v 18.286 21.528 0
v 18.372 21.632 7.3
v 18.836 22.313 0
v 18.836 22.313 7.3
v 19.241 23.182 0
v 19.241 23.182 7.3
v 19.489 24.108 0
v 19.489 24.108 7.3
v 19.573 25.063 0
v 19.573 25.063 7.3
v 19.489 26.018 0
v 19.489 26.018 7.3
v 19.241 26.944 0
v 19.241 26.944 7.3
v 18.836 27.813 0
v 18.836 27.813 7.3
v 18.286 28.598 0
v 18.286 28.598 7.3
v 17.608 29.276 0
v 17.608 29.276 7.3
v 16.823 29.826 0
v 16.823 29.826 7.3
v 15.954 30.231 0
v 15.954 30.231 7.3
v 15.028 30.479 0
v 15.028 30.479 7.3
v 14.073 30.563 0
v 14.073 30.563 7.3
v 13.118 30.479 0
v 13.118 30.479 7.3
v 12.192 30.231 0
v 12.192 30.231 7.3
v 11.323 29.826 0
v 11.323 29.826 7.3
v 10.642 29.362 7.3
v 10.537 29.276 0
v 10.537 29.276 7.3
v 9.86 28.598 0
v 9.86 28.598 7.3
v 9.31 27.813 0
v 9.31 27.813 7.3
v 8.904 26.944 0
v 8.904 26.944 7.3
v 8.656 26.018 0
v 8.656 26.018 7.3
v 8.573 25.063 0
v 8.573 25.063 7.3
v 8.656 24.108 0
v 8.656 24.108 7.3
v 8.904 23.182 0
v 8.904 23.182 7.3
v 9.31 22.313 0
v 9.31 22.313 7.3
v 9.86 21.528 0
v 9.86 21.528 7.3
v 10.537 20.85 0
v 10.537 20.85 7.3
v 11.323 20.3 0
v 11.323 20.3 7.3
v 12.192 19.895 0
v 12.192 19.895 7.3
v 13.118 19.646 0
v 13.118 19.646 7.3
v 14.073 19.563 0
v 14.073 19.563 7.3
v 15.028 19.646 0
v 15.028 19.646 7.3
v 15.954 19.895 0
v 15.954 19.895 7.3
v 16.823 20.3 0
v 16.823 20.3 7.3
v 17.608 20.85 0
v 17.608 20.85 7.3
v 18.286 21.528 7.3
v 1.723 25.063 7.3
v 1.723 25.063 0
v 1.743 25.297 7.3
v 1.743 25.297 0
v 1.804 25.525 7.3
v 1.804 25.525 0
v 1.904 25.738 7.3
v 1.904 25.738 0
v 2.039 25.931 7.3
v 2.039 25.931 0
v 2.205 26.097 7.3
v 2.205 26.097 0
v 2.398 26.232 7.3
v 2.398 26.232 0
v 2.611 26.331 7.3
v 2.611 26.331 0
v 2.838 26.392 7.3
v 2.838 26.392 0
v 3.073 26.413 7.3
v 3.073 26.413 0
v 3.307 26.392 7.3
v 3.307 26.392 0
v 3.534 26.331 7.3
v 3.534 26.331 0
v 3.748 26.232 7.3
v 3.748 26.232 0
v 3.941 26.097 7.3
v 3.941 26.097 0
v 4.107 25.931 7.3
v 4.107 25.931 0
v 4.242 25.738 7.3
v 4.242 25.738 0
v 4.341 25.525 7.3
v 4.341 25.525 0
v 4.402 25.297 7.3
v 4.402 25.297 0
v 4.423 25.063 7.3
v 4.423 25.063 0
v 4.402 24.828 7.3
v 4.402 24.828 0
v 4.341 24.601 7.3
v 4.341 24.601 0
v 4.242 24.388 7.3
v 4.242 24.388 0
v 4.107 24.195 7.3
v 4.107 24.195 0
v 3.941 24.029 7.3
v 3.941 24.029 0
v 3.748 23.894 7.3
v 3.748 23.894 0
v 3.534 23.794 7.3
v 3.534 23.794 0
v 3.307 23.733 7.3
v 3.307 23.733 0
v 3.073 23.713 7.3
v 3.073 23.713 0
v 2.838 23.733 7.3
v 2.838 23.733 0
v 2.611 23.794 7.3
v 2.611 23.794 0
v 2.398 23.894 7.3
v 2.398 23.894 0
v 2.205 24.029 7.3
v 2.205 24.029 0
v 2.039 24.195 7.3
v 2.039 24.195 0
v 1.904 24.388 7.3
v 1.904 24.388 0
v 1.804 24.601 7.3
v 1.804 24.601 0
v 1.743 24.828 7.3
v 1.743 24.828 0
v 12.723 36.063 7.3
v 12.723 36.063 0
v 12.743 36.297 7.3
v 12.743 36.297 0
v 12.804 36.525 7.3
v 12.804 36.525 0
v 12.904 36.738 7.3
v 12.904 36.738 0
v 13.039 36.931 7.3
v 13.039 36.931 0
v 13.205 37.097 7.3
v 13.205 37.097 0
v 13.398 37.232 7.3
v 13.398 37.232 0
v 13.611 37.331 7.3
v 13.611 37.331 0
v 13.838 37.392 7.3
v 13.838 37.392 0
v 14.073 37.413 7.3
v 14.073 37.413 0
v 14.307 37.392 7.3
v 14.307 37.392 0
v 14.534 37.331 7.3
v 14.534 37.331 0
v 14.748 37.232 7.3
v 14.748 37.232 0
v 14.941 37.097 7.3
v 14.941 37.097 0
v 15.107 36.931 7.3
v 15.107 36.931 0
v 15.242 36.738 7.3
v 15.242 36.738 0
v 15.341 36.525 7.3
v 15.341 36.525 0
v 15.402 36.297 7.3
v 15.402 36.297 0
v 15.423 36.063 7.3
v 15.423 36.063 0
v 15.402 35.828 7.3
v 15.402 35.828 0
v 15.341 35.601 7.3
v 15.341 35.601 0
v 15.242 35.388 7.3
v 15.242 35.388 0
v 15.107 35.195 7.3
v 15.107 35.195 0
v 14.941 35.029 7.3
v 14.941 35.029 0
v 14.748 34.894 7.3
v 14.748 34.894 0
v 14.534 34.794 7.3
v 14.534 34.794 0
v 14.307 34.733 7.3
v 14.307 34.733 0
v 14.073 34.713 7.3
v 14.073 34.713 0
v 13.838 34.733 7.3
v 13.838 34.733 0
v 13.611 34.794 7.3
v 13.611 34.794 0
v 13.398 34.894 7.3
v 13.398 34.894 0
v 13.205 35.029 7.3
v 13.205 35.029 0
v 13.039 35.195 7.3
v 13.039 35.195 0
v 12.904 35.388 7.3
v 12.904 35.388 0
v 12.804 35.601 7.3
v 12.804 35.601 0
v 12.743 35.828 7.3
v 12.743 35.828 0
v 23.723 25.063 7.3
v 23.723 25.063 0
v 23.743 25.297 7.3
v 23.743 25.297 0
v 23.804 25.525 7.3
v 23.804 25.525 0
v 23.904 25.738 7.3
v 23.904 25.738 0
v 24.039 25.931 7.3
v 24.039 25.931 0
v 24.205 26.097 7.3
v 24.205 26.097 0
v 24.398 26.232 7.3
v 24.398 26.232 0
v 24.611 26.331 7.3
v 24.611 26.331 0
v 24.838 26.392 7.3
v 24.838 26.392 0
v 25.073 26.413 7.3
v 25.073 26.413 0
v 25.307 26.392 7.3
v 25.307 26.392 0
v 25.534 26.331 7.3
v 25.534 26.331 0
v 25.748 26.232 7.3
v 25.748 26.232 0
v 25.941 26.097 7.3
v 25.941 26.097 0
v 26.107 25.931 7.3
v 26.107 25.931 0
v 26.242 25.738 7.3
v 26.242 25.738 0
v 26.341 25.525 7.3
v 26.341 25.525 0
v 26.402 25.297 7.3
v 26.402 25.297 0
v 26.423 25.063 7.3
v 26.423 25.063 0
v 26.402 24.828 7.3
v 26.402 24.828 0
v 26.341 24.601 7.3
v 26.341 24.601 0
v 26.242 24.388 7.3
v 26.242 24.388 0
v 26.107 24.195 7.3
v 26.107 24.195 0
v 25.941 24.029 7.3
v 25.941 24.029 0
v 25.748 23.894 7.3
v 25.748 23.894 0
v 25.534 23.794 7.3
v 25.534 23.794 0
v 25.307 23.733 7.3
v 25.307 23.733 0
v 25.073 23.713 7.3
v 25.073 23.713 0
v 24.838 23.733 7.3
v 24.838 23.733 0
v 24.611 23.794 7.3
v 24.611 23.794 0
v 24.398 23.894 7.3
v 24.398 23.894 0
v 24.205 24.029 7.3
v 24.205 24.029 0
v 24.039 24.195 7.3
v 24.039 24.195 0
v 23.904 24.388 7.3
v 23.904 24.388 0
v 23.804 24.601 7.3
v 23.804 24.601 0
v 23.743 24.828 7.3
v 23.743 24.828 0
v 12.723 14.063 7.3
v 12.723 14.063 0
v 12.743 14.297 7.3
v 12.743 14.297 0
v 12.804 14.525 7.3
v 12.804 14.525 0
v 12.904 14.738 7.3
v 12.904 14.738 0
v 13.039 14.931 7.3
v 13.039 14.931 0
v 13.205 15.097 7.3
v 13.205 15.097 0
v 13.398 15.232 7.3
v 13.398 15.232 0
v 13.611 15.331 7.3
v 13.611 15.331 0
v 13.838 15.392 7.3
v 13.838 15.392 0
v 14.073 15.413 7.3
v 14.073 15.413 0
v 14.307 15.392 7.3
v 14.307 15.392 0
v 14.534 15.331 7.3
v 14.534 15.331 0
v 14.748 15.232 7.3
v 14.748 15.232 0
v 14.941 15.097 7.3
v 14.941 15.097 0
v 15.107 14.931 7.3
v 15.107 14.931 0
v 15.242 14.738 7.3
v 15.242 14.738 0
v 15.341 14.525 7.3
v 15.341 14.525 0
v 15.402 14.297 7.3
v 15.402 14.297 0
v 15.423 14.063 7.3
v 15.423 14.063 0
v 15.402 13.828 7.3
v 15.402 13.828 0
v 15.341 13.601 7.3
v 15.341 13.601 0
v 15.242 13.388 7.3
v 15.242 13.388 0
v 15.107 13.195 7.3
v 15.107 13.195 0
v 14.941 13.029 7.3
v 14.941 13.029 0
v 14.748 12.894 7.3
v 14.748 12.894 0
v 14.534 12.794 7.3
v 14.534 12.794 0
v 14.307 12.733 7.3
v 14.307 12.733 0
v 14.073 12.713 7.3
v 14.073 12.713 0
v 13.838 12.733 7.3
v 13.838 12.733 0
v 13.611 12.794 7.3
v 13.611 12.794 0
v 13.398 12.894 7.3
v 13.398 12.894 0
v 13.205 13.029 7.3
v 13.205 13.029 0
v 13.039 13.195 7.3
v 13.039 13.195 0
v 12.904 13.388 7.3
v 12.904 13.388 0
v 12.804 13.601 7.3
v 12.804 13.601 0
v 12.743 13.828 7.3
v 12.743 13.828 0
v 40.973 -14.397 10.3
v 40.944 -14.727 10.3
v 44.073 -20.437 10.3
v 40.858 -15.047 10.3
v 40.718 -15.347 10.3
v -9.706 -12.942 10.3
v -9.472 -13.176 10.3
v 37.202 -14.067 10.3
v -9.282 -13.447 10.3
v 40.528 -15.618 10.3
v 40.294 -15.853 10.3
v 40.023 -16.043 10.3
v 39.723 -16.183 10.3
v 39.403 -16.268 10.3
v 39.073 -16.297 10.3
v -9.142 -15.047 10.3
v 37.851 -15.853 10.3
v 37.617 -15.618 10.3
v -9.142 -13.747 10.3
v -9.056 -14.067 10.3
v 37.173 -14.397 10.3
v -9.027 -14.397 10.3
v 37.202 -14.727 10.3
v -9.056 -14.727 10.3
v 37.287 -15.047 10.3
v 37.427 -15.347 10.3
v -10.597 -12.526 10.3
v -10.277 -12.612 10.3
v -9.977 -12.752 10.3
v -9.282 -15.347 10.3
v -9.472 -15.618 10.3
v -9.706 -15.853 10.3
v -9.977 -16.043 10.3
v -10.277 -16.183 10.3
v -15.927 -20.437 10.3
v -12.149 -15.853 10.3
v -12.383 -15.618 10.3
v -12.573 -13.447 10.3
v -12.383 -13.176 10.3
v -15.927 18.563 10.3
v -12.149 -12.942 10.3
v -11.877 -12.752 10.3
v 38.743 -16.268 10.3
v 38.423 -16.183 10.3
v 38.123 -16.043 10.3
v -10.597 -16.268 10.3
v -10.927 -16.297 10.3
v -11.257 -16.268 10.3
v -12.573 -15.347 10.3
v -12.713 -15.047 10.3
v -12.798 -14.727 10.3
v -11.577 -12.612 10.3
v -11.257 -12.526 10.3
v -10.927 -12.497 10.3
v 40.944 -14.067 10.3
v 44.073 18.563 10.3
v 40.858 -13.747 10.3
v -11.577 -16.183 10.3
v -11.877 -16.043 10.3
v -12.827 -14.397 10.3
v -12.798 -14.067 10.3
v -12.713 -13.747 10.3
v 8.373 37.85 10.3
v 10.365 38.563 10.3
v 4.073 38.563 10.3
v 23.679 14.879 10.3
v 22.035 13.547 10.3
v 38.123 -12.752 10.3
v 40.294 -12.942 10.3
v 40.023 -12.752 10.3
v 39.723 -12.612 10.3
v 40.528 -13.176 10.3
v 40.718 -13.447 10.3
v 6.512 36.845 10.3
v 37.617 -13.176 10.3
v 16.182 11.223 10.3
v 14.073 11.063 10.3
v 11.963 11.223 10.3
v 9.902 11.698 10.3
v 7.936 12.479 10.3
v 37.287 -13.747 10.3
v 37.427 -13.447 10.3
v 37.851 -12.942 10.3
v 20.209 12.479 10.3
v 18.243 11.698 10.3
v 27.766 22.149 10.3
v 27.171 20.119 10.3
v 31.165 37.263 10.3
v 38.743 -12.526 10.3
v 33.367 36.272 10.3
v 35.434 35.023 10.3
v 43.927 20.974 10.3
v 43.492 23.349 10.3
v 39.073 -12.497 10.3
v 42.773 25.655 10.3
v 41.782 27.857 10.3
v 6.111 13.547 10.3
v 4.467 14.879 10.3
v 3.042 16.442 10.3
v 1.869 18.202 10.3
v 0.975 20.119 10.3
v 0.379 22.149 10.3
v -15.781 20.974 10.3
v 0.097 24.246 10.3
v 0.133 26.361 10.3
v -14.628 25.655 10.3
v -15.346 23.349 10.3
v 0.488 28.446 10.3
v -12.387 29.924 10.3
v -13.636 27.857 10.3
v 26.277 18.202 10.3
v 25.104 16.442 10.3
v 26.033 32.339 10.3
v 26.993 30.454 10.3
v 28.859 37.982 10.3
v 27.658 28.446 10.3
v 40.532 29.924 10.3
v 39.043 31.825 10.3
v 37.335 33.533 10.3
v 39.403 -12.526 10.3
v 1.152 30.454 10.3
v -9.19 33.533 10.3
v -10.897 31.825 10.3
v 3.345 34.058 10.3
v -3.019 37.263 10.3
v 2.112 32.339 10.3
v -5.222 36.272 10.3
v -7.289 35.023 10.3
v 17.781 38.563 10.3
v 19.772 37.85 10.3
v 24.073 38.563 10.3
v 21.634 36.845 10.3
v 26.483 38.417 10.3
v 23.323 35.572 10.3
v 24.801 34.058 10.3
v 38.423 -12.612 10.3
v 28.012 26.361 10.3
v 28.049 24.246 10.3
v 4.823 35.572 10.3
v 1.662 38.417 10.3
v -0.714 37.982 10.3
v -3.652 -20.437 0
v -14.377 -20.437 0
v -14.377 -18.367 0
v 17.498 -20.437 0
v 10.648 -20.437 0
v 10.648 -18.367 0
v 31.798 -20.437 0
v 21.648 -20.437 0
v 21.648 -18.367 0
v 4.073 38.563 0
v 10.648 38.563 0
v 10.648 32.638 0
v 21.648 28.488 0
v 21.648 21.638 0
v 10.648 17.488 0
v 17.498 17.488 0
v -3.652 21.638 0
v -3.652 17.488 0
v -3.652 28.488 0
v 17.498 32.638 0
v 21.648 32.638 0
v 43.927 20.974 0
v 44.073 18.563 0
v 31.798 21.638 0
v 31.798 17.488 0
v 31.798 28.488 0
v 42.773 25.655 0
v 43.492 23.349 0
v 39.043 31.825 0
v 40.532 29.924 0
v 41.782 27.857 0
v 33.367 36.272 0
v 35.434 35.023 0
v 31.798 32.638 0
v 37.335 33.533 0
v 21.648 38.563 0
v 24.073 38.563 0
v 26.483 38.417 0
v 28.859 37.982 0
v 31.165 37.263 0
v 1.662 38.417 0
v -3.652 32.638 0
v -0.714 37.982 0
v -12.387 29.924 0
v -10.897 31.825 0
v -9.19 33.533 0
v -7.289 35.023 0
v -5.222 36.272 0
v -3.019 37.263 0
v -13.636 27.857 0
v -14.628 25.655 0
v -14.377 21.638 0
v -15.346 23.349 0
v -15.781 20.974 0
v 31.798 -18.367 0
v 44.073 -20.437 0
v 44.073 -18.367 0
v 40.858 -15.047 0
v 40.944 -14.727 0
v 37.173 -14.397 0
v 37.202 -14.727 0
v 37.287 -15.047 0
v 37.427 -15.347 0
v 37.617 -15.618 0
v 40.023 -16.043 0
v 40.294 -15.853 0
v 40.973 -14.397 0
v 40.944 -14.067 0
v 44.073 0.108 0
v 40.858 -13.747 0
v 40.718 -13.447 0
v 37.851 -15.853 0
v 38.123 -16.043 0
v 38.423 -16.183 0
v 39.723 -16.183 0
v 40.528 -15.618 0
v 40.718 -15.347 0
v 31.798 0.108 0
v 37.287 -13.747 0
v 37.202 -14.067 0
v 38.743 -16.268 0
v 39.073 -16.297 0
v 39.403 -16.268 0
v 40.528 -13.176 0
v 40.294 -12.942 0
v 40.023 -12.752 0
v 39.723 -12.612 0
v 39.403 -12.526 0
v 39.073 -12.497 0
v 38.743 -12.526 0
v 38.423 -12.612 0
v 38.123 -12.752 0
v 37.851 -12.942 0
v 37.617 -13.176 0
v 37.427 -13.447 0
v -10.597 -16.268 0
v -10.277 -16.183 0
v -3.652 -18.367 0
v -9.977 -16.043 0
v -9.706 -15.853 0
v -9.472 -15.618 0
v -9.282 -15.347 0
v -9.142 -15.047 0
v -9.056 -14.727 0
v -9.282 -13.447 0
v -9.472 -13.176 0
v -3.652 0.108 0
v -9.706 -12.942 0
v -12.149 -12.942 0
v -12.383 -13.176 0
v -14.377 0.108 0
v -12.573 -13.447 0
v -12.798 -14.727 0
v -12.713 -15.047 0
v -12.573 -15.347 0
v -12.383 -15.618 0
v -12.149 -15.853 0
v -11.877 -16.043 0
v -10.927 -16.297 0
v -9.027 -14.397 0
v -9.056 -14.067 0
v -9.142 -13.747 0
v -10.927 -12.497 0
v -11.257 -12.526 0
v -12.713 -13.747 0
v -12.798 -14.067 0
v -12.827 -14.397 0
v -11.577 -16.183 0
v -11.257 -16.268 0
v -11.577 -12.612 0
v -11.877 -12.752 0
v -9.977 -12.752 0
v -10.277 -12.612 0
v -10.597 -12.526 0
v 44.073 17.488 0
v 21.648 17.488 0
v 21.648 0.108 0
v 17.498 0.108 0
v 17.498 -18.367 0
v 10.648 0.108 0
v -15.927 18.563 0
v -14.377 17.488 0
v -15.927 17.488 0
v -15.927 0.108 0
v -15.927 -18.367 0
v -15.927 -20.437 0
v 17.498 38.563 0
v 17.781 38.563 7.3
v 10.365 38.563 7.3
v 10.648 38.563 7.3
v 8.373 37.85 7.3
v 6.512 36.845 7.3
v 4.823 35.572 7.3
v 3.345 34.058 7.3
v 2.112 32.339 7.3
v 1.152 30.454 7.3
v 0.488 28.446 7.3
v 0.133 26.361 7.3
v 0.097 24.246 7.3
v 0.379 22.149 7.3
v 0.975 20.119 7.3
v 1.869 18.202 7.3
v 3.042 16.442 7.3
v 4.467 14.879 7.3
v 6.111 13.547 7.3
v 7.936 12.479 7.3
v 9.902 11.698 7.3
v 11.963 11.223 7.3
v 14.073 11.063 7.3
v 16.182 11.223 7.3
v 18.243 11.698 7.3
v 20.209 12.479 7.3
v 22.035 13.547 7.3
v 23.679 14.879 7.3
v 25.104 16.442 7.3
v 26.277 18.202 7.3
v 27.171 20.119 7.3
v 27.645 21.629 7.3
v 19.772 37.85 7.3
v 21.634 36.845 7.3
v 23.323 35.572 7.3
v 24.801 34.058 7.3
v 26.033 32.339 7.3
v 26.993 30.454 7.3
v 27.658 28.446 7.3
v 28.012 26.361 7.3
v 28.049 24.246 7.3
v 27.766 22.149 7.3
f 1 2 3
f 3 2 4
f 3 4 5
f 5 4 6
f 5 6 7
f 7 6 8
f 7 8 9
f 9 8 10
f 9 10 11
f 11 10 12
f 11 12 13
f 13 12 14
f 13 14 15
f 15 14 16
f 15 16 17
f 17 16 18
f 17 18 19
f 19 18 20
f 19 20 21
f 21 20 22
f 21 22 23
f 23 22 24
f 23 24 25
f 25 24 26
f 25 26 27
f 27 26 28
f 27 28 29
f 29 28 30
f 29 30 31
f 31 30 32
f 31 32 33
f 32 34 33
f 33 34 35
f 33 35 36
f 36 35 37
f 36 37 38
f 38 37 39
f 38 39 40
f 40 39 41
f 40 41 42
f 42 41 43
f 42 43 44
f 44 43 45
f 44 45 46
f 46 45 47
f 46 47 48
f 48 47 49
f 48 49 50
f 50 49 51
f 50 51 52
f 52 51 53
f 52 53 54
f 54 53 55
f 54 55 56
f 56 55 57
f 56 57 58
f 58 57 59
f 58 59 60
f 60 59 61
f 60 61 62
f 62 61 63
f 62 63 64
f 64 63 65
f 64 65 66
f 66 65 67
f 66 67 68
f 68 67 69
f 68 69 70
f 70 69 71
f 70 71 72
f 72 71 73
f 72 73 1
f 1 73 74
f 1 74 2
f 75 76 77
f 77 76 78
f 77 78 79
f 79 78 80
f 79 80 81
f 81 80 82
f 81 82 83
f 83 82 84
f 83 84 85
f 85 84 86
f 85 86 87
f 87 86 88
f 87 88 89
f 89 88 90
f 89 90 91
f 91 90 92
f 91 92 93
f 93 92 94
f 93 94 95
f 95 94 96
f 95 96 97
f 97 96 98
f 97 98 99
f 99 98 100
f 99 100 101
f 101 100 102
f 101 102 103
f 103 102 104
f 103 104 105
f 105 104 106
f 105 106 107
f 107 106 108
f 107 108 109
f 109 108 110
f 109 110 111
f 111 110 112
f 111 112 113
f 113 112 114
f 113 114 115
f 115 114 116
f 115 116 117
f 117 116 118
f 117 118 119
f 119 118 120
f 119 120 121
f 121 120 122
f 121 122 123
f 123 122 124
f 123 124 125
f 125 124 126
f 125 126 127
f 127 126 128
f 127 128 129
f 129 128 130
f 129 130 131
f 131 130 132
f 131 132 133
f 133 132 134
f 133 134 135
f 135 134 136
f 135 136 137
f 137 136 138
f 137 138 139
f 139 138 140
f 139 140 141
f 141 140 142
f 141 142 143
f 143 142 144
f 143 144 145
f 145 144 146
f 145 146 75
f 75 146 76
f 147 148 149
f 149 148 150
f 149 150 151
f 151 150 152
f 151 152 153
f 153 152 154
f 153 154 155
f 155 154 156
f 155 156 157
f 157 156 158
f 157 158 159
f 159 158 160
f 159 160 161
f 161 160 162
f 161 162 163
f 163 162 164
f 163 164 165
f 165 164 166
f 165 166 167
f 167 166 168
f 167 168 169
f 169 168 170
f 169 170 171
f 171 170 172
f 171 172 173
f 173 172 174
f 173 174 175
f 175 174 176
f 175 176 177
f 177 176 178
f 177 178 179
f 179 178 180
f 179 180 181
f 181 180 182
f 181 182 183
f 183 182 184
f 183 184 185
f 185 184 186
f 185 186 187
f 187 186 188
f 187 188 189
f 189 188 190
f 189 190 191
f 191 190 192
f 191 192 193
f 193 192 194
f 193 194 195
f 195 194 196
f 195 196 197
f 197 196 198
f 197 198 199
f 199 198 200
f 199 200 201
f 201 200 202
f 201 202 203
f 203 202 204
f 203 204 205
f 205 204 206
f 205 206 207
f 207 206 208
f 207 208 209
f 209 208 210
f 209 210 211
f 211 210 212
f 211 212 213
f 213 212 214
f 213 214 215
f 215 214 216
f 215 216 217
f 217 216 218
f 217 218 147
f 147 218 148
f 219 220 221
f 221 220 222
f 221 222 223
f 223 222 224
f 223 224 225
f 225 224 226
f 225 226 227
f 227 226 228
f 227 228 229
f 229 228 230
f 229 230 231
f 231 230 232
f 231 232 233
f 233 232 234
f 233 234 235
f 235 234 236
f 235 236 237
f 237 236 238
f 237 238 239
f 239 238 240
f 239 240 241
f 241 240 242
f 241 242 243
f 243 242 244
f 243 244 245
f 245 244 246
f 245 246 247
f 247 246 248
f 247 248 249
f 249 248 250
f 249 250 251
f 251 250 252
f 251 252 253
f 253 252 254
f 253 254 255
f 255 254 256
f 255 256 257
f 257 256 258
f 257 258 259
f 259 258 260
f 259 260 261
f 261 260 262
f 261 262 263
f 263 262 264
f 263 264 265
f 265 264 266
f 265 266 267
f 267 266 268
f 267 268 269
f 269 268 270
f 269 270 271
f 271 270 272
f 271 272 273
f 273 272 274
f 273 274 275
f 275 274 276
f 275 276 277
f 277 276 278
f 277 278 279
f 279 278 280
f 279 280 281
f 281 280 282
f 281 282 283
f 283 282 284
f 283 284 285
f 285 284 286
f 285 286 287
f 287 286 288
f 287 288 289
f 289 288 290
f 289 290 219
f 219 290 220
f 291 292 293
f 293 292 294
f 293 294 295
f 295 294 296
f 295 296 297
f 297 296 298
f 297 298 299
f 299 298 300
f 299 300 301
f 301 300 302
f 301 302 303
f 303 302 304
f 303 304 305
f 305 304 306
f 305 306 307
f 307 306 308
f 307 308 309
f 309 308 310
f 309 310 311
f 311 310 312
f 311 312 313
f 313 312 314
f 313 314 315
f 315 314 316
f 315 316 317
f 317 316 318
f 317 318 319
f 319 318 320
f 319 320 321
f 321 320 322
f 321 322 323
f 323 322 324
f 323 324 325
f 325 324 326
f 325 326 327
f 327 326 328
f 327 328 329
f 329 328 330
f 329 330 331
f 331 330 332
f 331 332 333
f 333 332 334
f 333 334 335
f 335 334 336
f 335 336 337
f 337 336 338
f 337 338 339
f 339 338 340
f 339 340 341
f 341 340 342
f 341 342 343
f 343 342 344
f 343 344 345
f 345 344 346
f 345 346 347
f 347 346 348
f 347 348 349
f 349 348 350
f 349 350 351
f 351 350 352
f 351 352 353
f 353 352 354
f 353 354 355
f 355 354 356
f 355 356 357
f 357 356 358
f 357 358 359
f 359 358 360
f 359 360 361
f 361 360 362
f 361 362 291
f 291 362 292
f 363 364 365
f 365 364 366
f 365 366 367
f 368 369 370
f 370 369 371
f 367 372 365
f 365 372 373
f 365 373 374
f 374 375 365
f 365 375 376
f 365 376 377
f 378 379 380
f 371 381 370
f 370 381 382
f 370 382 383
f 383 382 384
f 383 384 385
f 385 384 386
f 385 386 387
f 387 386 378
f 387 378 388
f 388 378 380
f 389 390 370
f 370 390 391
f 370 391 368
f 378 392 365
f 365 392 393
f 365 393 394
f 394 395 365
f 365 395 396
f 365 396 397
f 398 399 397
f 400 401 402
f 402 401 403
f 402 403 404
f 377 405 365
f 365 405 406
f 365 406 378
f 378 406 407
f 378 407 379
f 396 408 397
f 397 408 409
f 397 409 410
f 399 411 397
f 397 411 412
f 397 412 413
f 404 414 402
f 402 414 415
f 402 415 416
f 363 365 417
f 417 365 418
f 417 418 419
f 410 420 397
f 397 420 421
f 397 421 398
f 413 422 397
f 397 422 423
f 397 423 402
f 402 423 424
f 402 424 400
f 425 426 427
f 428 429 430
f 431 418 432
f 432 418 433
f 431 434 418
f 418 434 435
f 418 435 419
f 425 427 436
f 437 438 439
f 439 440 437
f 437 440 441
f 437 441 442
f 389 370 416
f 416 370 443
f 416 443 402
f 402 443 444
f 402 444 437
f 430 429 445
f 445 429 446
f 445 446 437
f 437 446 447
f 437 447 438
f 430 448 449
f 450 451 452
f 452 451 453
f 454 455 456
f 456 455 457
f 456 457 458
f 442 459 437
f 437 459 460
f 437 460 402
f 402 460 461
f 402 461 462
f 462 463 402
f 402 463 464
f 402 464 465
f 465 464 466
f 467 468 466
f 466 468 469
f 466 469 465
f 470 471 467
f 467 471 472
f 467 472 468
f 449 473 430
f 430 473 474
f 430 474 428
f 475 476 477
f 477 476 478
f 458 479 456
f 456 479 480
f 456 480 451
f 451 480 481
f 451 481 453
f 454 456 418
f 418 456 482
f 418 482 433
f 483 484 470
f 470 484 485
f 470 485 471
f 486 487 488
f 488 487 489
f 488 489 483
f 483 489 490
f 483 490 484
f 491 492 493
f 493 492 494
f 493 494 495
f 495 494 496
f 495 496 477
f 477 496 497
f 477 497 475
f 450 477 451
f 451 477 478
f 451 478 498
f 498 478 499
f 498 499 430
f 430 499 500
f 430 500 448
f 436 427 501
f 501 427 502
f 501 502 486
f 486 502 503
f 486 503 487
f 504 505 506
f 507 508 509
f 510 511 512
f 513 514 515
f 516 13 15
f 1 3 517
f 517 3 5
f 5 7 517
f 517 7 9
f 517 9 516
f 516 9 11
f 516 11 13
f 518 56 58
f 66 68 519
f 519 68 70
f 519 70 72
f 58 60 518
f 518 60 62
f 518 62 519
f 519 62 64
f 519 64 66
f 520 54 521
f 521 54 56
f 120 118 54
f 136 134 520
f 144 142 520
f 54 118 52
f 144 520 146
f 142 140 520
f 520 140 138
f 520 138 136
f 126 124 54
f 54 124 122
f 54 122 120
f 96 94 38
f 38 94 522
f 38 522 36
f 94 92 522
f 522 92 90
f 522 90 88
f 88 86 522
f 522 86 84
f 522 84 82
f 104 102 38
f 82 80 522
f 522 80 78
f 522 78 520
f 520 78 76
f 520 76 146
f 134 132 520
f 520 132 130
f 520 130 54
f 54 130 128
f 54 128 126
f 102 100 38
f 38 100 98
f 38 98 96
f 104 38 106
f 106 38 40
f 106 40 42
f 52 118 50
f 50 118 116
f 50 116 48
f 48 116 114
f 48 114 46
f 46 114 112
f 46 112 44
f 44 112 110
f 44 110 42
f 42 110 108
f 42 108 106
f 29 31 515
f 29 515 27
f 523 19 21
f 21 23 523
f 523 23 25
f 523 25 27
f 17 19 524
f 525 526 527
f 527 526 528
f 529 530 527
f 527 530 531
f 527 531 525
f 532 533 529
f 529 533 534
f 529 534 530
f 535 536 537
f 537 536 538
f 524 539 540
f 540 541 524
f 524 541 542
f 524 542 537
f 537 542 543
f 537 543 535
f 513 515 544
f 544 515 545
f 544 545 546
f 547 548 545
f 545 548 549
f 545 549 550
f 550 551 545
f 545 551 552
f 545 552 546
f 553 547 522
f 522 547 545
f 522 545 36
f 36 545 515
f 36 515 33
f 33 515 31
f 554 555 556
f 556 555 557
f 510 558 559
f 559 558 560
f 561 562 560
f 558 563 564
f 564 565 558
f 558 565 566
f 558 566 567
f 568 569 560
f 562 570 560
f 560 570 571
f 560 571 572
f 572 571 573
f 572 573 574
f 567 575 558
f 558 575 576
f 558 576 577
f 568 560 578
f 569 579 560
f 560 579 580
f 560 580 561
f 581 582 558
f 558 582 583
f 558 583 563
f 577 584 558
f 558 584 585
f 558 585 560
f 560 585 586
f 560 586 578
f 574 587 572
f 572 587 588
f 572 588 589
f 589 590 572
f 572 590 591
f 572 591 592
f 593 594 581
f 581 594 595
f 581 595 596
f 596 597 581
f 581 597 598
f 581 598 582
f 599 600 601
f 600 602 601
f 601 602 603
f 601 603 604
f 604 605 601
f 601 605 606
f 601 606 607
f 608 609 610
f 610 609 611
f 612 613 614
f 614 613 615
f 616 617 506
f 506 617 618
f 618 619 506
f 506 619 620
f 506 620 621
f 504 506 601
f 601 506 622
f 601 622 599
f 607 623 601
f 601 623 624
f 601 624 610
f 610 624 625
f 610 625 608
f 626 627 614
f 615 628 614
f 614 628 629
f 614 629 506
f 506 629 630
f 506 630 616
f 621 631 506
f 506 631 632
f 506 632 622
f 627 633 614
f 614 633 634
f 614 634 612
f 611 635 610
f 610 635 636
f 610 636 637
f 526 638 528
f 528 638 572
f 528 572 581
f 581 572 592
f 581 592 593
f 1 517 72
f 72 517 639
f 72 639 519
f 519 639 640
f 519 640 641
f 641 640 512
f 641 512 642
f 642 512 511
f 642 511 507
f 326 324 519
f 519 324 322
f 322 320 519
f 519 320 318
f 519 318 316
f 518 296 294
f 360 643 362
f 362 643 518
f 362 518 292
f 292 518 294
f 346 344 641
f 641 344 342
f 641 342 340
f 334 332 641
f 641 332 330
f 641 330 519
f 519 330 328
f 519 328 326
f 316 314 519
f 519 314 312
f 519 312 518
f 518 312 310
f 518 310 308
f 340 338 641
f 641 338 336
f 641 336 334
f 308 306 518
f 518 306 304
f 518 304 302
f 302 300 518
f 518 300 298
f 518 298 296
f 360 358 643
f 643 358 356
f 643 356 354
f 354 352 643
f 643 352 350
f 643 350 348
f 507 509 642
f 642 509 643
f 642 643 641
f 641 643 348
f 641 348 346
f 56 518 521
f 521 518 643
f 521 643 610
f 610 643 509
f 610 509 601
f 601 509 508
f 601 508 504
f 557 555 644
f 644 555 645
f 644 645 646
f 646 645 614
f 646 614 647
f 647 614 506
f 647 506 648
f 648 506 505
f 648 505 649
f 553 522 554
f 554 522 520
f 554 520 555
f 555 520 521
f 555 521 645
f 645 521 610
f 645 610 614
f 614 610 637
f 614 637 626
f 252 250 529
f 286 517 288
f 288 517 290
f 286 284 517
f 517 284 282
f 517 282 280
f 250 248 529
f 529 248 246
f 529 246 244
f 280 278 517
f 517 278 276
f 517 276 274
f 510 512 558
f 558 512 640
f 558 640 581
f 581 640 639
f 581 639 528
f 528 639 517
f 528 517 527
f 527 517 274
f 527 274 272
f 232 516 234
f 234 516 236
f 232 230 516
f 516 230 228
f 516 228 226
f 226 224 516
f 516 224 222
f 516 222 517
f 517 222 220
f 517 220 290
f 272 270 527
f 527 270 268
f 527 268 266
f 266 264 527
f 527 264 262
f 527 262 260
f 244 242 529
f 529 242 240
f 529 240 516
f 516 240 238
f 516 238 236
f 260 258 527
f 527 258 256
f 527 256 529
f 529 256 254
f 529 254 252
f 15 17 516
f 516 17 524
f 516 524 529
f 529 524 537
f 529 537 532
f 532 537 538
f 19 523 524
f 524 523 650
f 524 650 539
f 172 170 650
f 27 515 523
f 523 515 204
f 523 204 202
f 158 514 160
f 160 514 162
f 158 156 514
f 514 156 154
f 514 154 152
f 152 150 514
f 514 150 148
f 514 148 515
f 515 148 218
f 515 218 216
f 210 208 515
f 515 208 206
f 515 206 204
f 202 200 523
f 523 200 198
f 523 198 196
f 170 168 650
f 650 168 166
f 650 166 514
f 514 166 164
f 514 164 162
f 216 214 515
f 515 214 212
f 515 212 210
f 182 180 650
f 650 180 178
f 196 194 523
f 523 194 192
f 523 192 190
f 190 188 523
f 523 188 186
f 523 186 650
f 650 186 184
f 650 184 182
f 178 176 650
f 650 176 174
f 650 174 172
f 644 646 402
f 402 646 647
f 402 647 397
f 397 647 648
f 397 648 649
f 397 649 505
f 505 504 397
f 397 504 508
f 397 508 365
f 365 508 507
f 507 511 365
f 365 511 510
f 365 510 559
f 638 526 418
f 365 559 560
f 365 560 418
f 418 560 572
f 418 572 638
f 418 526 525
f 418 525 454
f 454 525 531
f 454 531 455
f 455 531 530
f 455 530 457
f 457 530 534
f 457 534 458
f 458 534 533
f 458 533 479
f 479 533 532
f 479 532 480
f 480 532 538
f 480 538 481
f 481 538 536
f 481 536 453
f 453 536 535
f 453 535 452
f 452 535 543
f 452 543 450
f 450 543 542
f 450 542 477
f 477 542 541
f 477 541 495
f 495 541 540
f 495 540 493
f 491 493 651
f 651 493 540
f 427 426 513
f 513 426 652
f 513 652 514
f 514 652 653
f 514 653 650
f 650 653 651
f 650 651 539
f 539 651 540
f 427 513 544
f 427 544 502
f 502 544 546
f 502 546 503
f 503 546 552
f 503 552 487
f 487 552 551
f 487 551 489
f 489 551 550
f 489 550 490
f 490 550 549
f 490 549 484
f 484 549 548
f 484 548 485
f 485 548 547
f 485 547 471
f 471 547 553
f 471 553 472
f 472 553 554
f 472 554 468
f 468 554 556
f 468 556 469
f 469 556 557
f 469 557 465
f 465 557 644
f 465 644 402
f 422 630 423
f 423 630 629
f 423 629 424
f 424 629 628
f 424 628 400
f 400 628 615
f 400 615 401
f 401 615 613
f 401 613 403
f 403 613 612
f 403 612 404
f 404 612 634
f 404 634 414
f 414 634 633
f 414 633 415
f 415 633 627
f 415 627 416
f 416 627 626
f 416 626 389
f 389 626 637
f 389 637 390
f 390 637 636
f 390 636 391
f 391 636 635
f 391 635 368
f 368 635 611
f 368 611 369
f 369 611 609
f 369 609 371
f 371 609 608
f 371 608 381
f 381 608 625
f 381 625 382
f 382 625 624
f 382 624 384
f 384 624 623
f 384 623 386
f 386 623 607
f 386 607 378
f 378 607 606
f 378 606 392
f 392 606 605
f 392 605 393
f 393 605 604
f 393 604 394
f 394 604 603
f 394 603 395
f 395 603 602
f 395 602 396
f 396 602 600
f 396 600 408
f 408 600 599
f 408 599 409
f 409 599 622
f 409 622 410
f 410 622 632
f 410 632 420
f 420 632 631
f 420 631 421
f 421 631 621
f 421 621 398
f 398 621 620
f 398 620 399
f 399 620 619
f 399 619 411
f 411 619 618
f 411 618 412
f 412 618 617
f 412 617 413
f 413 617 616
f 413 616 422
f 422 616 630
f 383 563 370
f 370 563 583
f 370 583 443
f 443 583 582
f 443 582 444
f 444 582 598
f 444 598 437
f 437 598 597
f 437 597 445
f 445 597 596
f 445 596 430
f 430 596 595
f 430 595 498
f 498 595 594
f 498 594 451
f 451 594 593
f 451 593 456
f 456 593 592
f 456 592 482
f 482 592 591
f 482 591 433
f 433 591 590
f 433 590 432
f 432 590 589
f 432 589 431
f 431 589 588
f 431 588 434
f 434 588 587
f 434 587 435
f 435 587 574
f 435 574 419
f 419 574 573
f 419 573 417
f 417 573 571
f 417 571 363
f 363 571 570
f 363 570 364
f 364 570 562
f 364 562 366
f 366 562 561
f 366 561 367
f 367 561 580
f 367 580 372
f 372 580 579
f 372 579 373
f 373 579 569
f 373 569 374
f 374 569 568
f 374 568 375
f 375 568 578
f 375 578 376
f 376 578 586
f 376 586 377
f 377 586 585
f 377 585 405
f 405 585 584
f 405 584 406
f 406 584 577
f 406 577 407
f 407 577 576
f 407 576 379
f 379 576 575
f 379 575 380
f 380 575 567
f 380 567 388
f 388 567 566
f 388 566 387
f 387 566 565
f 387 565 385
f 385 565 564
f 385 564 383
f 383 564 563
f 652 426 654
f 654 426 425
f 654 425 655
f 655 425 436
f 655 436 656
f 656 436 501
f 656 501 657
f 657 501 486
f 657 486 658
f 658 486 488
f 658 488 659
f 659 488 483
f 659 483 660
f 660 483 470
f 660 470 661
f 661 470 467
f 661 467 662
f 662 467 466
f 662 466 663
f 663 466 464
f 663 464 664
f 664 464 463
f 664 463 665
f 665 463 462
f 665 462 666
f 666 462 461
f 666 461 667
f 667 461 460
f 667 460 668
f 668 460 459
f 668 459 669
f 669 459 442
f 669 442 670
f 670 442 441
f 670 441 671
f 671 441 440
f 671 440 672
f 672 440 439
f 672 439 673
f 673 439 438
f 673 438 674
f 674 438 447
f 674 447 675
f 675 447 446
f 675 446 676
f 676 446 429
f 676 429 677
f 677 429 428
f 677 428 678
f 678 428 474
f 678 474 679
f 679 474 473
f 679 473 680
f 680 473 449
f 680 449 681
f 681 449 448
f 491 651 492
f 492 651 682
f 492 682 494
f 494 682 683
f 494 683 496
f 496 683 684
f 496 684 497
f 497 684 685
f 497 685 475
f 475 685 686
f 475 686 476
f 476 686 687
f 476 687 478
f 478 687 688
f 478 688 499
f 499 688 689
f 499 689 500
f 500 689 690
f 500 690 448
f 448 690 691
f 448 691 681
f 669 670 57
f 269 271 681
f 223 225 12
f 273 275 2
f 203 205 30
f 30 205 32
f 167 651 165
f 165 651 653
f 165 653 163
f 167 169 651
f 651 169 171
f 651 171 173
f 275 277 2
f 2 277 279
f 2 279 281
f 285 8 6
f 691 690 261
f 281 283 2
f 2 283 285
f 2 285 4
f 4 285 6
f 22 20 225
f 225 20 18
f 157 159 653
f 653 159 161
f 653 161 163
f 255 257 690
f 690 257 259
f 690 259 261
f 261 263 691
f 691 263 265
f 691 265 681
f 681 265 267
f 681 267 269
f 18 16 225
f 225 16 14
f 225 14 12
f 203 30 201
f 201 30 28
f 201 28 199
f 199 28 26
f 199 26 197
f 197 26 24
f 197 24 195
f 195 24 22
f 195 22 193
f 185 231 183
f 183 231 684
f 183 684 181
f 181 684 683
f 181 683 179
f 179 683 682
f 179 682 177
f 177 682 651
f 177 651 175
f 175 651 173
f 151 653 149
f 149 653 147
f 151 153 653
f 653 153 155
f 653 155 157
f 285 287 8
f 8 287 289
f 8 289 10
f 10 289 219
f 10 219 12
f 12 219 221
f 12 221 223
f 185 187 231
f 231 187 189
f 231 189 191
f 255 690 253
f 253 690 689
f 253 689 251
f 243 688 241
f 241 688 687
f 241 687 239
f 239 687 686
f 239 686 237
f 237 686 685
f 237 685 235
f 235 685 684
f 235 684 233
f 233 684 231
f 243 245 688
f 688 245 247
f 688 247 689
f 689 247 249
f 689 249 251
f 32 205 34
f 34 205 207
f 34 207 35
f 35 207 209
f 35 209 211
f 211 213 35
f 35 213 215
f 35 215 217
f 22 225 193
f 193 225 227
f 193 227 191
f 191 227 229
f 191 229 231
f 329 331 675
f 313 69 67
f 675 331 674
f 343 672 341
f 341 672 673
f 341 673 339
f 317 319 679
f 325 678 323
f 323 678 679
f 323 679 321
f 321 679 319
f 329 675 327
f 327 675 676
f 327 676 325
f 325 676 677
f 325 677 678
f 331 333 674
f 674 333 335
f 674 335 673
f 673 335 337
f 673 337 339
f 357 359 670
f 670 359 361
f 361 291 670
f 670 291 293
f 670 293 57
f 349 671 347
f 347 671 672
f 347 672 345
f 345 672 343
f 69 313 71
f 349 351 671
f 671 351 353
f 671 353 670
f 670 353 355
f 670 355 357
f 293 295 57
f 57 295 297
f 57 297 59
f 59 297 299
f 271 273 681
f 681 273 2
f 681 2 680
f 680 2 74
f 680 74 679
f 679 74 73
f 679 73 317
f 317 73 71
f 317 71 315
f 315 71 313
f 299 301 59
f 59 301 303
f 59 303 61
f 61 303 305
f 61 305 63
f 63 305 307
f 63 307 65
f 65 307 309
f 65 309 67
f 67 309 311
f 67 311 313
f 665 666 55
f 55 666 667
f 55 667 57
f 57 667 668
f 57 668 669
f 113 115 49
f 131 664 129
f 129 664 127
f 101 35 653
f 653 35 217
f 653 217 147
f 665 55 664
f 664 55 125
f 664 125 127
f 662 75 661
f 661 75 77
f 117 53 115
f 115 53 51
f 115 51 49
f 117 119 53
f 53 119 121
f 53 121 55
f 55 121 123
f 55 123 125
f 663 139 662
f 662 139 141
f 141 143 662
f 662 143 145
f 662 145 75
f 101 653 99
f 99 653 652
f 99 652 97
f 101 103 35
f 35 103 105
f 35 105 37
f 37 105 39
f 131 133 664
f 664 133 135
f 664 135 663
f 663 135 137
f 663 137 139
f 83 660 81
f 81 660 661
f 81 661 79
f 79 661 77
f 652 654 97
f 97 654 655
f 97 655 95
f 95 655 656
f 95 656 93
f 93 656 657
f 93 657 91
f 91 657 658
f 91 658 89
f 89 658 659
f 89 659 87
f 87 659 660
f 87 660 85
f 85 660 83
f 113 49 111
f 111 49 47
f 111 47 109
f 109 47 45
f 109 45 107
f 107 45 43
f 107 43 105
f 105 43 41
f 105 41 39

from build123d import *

# Parameters (mm, degrees)
IZIM1_R                     = 1.9
IZIM1_R_2                   = 5.5
IZIM1_R_3                   = 1.35
Y_KSEKLIK_EKSTR_ZYON1_DEPTH = 10.3
IZIM2_R                     = 14
KES_EKSTR_ZYON1_DEPTH       = 3


with BuildPart() as part:
    # Çizim1 → Yükseklik-Ekstrüzyon1 (new body)
    with BuildSketch(Plane.XY):
        with BuildLine():
            Line((-15.927254298, -20.437118131), (44.072745702, -20.437118131))
            Line((44.072745702, -20.437118131), (44.072745702, 18.562881869))
            ThreePointArc((44.072745702, 18.562881869), (38.214881326, 32.705017493), (24.072745702, 38.562881869))
            Line((24.072745702, 38.562881869), (4.072745702, 38.562881869))
            ThreePointArc((4.072745702, 38.562881869), (-10.069389922, 32.705017493), (-15.927254298, 18.562881869))
            Line((-15.927254298, 18.562881869), (-15.927254298, -20.437118131))
        make_face()
        with Locations(Location((-10.927254298, -14.397118131, 0), (0, 0, 180))):
            Circle(IZIM1_R, mode=Mode.SUBTRACT)
        with Locations(Location((39.072745702, -14.397118131, 0), (0, 0, 180))):
            Circle(IZIM1_R, mode=Mode.SUBTRACT)
        with Locations(Location((14.072745702, 25.062881869, 0), (0, 0, 180))):
            Circle(IZIM1_R_2, mode=Mode.SUBTRACT)
        with Locations(Location((3.072745702, 25.062881869, 0), (0, 0, 180))):
            Circle(IZIM1_R_3, mode=Mode.SUBTRACT)
        with Locations(Location((14.072745702, 36.062881869, 0), (0, 0, 180))):
            Circle(IZIM1_R_3, mode=Mode.SUBTRACT)
        with Locations(Location((25.072745702, 25.062881869, 0), (0, 0, 180))):
            Circle(IZIM1_R_3, mode=Mode.SUBTRACT)
        with Locations(Location((14.072745702, 14.062881869, 0), (0, 0, 180))):
            Circle(IZIM1_R_3, mode=Mode.SUBTRACT)
    extrude(amount=Y_KSEKLIK_EKSTR_ZYON1_DEPTH)

    # Çizim2 → Kes-Ekstrüzyon1 (cut)
    with BuildSketch(Plane.XY.offset(10.3)):
        with Locations((14.072745702, 25.062881869)):
            Circle(IZIM2_R)
    extrude(amount=-KES_EKSTR_ZYON1_DEPTH, mode=Mode.SUBTRACT)


solid = part.part
